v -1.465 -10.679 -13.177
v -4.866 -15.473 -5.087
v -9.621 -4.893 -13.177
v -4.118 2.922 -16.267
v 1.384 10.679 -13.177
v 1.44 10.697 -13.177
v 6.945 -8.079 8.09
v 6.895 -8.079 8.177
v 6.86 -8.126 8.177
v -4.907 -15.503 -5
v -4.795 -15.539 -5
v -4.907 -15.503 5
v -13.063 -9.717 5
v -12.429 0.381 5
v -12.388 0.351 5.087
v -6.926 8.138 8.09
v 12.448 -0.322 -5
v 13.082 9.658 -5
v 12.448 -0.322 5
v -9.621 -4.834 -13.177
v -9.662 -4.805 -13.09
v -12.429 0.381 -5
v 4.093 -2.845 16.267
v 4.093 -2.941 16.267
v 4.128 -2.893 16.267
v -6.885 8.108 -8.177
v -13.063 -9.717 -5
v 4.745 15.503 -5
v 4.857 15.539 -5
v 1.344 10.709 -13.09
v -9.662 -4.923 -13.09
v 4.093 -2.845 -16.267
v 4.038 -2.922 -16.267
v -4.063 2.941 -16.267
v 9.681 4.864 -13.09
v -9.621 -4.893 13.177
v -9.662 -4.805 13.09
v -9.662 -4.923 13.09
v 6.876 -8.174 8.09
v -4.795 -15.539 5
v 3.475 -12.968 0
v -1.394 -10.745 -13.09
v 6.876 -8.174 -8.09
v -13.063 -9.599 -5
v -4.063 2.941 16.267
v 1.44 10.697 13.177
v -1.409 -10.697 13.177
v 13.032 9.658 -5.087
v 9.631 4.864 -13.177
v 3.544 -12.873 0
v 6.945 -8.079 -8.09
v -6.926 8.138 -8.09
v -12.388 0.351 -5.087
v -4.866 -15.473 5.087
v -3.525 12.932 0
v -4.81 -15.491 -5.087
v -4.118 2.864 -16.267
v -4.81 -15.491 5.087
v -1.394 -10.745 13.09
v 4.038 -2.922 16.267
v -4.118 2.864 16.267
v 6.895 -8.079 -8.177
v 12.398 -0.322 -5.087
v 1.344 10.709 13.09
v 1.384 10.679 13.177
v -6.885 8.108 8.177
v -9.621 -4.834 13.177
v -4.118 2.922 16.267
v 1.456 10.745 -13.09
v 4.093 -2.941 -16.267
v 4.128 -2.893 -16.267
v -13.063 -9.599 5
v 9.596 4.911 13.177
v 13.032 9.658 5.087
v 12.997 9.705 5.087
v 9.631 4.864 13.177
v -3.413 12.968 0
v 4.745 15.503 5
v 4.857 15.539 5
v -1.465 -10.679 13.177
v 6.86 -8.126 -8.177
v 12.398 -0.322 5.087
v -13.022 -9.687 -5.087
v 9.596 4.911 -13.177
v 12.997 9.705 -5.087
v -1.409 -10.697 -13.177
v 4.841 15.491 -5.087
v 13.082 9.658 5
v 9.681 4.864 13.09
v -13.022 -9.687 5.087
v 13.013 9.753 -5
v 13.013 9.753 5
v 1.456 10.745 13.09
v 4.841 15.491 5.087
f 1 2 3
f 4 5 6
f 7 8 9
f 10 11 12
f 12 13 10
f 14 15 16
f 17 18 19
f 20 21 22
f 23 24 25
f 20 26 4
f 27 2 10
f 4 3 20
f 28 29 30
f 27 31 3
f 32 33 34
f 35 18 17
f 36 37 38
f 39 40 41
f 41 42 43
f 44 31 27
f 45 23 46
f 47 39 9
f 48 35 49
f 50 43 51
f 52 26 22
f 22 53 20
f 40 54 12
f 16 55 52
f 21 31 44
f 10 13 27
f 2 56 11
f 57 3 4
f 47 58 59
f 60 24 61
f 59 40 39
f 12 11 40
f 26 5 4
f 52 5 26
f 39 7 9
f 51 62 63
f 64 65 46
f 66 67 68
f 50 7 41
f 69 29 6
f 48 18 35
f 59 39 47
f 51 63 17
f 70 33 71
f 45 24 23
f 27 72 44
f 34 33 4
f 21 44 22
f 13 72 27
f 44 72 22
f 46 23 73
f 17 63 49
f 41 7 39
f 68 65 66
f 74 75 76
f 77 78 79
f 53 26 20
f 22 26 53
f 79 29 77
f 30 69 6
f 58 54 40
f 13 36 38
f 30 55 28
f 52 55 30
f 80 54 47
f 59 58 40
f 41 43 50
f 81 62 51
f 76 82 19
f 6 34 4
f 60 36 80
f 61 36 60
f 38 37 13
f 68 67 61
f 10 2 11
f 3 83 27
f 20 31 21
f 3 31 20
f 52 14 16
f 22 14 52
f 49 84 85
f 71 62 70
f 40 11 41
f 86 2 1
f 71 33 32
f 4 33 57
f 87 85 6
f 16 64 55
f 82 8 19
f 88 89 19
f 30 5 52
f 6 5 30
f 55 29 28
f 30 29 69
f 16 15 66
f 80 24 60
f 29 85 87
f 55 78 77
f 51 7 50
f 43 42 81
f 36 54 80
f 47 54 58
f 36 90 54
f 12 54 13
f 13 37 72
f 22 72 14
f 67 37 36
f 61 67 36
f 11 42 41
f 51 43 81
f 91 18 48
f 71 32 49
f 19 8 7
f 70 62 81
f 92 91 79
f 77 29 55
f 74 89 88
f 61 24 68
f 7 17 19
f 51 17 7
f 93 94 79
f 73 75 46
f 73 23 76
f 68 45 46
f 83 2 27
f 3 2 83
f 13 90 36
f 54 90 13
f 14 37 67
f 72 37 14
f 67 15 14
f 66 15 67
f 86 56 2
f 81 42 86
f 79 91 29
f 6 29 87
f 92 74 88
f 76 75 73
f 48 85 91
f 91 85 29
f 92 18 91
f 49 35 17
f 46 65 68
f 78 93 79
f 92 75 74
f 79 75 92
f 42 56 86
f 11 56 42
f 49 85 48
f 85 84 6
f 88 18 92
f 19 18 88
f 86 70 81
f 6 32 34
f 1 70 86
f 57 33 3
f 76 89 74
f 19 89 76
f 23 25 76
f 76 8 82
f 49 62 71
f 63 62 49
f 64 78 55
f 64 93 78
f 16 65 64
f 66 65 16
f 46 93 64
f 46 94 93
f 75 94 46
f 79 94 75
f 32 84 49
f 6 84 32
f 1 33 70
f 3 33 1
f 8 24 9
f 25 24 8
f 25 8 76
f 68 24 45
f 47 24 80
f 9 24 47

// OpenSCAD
// Auto-generated OpenSCAD file

    inner_points = 10*[[0.14248327341962527, 1.0649917302561571, -1.3090169943752274], [0.9580903383196593, 0.4863855466691237, -1.3090169943748198], [-0.9580910891193597, -0.48638509736213764, 1.3090169943748198], [-0.14248402421932574, -1.0649912809491708, 1.3090169943752274], [-0.4078039078494043, 0.28930331644652235, -1.6180339887500987], [0.4078031570506297, -0.289302867140511, -1.618033988749691], [0.4825794550170831, 1.5443935346701905, -0.5000000000003272], [1.298186519917117, 0.965787351083157, -0.4999999999999196], [-1.2981872707168176, -0.965786901776171, 0.4999999999999196], [-0.4825802058167836, -1.5443930853632042, 0.5000000000003272], [-0.4078039078503302, 0.28930331644749707, 1.618033988749691], [0.40780315704970377, -0.2893028671395363, 1.6180339887500987], [-0.9580910891186109, -0.48638509736292634, -1.3090169943750751], [-0.14248402421857673, -1.0649912809499593, -1.3090169943746672], [0.4825794550167972, 1.544393534670492, 0.4999999999996728], [1.2981865199168312, 0.9657873510834587, 0.5000000000000806], [-1.2981872707165318, -0.9657869017764726, -0.5000000000000806], [-0.48258020581649774, -1.5443930853635057, -0.4999999999996728], [0.14248327341887626, 1.0649917302569456, 1.3090169943746672], [0.9580903383189104, 0.4863855466699124, 1.3090169943750751], [-0.6844982809436438, 0.8078895934640433, -0.8090169943753867], [1.2347847114134358, -0.032200730347909934, -0.499999999999637], [-1.2347854622131365, 0.032201179654895995, 0.499999999999637], [0.6844975301439434, -0.8078891441570573, 0.8090169943753867], [-0.3444020993461857, 1.2872913978780771, -4.862776847858186e-13], [0.6844975301444062, -0.8078891441575446, -0.8090169943745082], [-0.6844982809441066, 0.8078895934645307, 0.8090169943745082], [0.3444013485464852, -1.2872909485710908, 4.862776847858186e-13], [-1.2347854622128502, 0.03220117965459479, -0.5000000000003629], [1.2347847114131496, -0.03220073034760873, 0.5000000000003629]];

    outer_points = 10*[[1.6886306591457743, 0.10140860074207245, 0.07922614112991666], [1.4492611727633173, -0.10140860074207245, -0.8702829066264164], [-1.4492611727633173, 0.10140860074207245, 0.8702829066264164], [-1.6886306591457743, -0.10140860074207245, -0.07922614112991666], [1.3418365432044954, 1.0326989450942865, -0.032273346155188454], [1.1024670568220385, 0.8298817436101416, -0.9817823939115216], [1.4361407617027524, -0.8298817436101416, 0.34180402710957575], [1.1967712753202955, -1.0326989450942865, -0.6077050206467574], [-1.1967712753202955, 1.0326989450942865, 0.6077050206467574], [-1.4361407617027524, 0.8298817436101416, -0.34180402710957575], [-1.1024670568220385, -0.8298817436101416, 0.9817823939115216], [-1.3418365432044954, -1.0326989450942865, 0.032273346155188454], [0.5282219790700129, 1.6082680312985487, 0.049894579668983724], [0.28885249268755586, 1.4054508298144037, -0.8996144680873494], [0.6808094098826893, -1.4054508298144037, 0.6551644840336533], [0.44143992350023237, -1.6082680312985487, -0.2943445637226797], [-0.44143992350023237, 1.6082680312985487, 0.2943445637226797], [-0.6808094098826893, 1.4054508298144037, -0.6551644840336533], [-0.28885249268755586, -1.4054508298144037, 0.8996144680873494], [-0.5282219790700129, -1.6082680312985487, -0.049894579668983724], [1.0169691649835269, 0.46543823413525565, 0.7244805586051959], [0.551976750971019, -0.46543823413525565, -1.1200089413534458], [-0.551976750971019, 0.46543823413525565, 1.1200089413534458], [-1.0169691649835269, -0.46543823413525565, -0.7244805586051959], [0.7644792675405051, -0.4658521102169585, 0.987058444584855], [0.2051826350297401, 0.4658521102169585, -1.231508428638551], [-0.2051826350297401, -0.4658521102169585, 1.231508428638551], [-0.7644792675405051, 0.4658521102169585, -0.987058444584855], [0.20335460084904425, 1.0410073203395176, 0.8066484844293681], [-0.20335460084904425, -1.0410073203395176, -0.8066484844293681]];

    // Convex hull for inner set (I)
    module inner_hull() {
        hull() {
            for (p = inner_points) {
                translate(p) sphere(r=0.1);
            }
        }
    }

    // Convex hull for outer set (O) minus inner hull (O \ I)
    module outer_minus_inner() {
        difference() {
            hull() {
                for (p = outer_points) {
                    translate(p) sphere(r=0.1);
                }
            }
            inner_hull(); // Subtract inner hull
        }
    }

    // Convex hull for outer set (O) minus all translated inner hulls
    module outer_minus_AllTranslationInner() {
        difference() {
            hull() {
                for (p = outer_points) {
                    translate(p) sphere(r=0.1);
                }
            }
            hull() {
                translate([0,0,50]) inner_hull();
                translate([0,0,-50]) inner_hull();
            }; // Subtract translated inner hulls
        }
    }

    // Difference between outer_minus_inner and outer_minus_AllTranslationInner
    module outer_minus_inner_diff() {
        difference() {
            // Outer minus inner
            difference() {
                hull() {
                    for (p = outer_points) {
                        translate(p) sphere(r=0.1);
                    }
                }
                inner_hull();
            }

            // Subtract Outer minus AllTranslationInner
            difference() {
                hull() {
                    for (p = outer_points) {
                        translate(p) sphere(r=0.1);
                    }
                }
                hull() {
                    translate([0,0,50]) inner_hull();
                    translate([0,0,-50]) inner_hull();
                };
            }
        }
    }

    // Rendering all with colors applied
    color([1, 0, 0, 0.5]) inner_hull(); // Transparent red
    
